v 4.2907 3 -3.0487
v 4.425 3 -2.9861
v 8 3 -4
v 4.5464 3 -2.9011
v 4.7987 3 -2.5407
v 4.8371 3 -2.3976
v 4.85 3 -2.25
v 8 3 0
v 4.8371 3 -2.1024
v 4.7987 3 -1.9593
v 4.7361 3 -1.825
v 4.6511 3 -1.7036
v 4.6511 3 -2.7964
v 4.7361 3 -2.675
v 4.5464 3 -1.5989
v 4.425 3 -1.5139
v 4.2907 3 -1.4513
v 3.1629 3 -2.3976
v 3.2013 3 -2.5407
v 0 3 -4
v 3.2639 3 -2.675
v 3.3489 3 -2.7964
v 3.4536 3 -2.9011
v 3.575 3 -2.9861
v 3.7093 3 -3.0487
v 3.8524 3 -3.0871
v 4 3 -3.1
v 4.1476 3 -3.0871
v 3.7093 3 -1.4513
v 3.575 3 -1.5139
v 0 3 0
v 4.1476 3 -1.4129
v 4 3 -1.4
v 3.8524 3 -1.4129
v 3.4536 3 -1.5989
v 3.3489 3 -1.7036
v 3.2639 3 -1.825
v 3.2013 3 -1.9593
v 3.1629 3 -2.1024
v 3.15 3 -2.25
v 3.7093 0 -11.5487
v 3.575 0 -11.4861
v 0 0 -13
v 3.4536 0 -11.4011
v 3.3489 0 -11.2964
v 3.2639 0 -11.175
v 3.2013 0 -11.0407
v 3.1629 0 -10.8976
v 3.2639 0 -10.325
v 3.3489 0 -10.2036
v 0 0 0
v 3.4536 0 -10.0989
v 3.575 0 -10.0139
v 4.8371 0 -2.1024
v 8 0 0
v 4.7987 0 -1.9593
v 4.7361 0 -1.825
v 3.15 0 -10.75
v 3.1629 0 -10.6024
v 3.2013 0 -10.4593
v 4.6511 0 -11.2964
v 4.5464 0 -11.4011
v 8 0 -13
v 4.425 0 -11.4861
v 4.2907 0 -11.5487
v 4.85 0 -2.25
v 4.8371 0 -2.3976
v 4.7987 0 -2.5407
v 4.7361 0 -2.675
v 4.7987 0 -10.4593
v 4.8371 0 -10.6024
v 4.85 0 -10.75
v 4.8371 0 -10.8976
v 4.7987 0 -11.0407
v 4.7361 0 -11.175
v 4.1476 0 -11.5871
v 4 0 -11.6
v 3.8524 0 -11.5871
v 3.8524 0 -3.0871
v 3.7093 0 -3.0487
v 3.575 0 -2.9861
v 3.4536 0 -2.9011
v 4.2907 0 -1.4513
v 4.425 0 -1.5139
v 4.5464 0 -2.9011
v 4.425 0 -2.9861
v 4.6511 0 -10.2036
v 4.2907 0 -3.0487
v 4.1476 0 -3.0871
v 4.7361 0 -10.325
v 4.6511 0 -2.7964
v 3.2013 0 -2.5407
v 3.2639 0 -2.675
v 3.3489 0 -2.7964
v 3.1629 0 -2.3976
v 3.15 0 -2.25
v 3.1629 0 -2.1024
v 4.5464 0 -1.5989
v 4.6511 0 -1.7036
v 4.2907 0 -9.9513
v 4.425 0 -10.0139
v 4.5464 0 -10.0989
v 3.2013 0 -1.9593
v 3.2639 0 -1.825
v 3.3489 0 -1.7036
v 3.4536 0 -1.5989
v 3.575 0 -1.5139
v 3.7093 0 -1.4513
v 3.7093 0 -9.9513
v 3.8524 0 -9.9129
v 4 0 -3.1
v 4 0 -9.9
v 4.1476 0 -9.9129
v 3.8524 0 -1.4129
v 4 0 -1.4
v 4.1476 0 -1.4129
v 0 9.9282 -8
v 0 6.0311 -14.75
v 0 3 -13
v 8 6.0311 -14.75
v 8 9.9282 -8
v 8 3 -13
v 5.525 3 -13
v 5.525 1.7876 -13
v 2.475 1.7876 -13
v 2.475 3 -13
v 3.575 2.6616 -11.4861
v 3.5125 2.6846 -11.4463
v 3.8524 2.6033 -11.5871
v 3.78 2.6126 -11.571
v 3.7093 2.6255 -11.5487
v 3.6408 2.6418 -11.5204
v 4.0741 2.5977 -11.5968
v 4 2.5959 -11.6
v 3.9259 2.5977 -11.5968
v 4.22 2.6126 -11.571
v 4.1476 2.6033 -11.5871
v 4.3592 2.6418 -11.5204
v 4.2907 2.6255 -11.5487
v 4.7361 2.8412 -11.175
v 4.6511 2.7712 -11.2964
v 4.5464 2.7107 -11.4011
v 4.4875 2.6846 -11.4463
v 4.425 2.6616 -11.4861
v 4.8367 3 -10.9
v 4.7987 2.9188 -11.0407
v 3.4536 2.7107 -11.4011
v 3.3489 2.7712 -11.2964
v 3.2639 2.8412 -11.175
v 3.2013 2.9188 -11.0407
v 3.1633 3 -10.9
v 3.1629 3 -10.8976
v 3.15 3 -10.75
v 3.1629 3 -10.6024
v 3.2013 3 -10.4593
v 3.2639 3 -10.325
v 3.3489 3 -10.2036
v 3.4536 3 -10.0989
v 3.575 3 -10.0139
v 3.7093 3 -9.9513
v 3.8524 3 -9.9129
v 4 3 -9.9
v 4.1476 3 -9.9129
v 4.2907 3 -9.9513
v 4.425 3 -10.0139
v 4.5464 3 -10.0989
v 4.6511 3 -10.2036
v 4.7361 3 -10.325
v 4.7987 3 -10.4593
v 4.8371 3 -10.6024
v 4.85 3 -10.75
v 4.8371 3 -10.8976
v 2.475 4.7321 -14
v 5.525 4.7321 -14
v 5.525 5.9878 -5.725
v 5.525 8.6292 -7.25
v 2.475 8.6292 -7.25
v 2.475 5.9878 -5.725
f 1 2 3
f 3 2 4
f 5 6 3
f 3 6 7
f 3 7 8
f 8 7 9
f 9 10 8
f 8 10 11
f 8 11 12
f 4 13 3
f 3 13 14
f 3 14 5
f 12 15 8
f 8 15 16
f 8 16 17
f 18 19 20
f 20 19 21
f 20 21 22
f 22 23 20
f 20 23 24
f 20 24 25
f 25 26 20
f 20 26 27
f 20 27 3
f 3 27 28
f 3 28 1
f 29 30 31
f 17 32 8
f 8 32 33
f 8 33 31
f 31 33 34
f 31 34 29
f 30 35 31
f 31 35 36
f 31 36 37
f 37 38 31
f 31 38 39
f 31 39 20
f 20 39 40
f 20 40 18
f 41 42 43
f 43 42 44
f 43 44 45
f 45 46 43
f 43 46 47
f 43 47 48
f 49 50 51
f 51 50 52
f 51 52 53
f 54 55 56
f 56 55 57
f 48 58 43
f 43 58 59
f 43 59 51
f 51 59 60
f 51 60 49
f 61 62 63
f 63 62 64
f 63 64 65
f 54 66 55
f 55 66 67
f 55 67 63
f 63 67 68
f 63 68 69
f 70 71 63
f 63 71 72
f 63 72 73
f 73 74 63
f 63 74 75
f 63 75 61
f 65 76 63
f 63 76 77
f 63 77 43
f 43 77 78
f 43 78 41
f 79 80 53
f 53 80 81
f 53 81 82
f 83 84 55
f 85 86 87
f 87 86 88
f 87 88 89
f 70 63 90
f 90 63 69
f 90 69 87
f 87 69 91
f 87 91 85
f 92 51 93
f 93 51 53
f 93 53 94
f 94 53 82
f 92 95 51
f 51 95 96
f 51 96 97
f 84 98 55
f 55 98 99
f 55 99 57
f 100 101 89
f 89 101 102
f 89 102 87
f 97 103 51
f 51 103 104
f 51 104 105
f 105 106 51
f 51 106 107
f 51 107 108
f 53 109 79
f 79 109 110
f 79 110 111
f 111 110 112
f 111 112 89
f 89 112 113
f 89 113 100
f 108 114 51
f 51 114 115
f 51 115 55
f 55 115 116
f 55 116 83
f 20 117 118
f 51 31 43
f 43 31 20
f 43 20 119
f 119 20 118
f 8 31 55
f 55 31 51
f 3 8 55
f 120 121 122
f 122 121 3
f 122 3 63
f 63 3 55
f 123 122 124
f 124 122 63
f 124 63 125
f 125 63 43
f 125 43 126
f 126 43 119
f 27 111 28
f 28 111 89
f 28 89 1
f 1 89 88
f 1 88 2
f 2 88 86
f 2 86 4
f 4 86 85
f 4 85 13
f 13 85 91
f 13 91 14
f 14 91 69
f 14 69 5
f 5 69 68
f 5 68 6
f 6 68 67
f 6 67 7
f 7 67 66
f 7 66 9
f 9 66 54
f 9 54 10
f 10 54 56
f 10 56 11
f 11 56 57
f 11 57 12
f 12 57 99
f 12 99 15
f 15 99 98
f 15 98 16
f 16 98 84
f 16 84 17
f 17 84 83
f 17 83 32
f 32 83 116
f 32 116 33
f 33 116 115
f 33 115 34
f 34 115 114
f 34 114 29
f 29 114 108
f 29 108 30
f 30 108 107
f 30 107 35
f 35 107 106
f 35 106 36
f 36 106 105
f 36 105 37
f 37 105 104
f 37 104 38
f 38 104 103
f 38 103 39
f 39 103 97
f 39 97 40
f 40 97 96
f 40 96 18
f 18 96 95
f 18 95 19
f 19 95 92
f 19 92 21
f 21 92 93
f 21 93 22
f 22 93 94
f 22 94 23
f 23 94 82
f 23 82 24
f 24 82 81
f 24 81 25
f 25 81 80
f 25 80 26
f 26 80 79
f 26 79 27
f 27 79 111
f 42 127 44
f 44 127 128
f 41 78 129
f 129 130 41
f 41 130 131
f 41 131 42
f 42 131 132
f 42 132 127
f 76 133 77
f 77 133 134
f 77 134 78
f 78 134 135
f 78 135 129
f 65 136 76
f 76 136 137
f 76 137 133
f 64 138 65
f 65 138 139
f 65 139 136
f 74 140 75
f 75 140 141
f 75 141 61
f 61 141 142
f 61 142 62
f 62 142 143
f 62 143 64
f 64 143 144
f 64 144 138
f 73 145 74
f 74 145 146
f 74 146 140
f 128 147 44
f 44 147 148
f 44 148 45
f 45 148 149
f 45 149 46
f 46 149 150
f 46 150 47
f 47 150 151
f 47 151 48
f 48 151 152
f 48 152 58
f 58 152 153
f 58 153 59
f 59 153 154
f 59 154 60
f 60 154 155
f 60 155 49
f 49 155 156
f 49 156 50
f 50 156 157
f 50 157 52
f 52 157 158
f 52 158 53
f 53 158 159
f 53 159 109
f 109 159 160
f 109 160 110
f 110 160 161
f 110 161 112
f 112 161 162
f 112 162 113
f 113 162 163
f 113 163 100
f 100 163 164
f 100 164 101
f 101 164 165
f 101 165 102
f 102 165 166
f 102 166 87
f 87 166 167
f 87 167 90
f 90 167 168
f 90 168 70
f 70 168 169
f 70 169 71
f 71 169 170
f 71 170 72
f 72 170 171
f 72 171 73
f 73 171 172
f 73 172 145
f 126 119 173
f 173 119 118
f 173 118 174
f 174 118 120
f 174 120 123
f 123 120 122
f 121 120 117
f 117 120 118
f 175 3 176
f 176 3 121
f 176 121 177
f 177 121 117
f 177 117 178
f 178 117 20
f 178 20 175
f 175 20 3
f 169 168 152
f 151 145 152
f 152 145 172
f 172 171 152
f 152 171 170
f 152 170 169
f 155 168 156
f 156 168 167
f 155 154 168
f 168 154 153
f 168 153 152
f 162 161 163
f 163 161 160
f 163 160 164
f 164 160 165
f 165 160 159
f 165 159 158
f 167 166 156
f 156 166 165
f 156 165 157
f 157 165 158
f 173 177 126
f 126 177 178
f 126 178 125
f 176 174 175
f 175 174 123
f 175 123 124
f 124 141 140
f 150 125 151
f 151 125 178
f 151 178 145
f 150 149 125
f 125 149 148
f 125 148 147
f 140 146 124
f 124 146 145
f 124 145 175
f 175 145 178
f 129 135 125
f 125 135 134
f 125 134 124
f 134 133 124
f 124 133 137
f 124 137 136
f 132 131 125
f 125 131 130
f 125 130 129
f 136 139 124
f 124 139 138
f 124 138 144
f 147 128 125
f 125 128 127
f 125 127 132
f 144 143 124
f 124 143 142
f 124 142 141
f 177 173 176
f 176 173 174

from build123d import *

# Parameters (mm, degrees)
SKETCH_6_W          = 8
SKETCH_6_H          = 13
SKETCH_6_R          = 0.85
EXTRUDE_1_DEPTH     = 3
EXTRUDE_2_DEPTH     = 8
SKETCH_9_W          = 3.05
SKETCH_9_H          = 3.05
CUT_EXTRUDE_3_DEPTH = 19.796569864


with BuildPart() as part:
    # 草图6 → 凸台-拉伸1 (new body)
    with BuildSketch(Plane(origin=(0, 0, 0), x_dir=(1, 0, 0), z_dir=(0, 1, 0))):
        with Locations((4, 6.5)):
            Rectangle(SKETCH_6_W, SKETCH_6_H)
        with Locations(Location((4, 2.25, 0), (0, 0, 270))):
            Circle(SKETCH_6_R, mode=Mode.SUBTRACT)
        with Locations(Location((4, 10.75, 0), (0, 0, 90))):
            Circle(SKETCH_6_R, mode=Mode.SUBTRACT)
    extrude(amount=EXTRUDE_1_DEPTH)

    # 草图8 → 凸台-拉伸2 (add)
    with BuildSketch(Plane(origin=(8, 0, 0), x_dir=(0, 0, -1), z_dir=(1, 0, 0))):
        Polygon((13, 3), (14.75, 6.031088913), (8, 9.92820323), (4, 3), align=None)
    extrude(amount=-EXTRUDE_2_DEPTH)

    # 草图9 → 切除-拉伸3 (cut, through all)
    with BuildSketch(Plane(origin=(0, -0.982050808, -1.700961894), x_dir=(1, 0, 0), z_dir=(0, 0.500000000000004, 0.8660254037844364))):
        with Locations((4, 9.573076211)):
            Rectangle(SKETCH_9_W, SKETCH_9_H)
    extrude(amount=-CUT_EXTRUDE_3_DEPTH, mode=Mode.SUBTRACT)


solid = part.part
